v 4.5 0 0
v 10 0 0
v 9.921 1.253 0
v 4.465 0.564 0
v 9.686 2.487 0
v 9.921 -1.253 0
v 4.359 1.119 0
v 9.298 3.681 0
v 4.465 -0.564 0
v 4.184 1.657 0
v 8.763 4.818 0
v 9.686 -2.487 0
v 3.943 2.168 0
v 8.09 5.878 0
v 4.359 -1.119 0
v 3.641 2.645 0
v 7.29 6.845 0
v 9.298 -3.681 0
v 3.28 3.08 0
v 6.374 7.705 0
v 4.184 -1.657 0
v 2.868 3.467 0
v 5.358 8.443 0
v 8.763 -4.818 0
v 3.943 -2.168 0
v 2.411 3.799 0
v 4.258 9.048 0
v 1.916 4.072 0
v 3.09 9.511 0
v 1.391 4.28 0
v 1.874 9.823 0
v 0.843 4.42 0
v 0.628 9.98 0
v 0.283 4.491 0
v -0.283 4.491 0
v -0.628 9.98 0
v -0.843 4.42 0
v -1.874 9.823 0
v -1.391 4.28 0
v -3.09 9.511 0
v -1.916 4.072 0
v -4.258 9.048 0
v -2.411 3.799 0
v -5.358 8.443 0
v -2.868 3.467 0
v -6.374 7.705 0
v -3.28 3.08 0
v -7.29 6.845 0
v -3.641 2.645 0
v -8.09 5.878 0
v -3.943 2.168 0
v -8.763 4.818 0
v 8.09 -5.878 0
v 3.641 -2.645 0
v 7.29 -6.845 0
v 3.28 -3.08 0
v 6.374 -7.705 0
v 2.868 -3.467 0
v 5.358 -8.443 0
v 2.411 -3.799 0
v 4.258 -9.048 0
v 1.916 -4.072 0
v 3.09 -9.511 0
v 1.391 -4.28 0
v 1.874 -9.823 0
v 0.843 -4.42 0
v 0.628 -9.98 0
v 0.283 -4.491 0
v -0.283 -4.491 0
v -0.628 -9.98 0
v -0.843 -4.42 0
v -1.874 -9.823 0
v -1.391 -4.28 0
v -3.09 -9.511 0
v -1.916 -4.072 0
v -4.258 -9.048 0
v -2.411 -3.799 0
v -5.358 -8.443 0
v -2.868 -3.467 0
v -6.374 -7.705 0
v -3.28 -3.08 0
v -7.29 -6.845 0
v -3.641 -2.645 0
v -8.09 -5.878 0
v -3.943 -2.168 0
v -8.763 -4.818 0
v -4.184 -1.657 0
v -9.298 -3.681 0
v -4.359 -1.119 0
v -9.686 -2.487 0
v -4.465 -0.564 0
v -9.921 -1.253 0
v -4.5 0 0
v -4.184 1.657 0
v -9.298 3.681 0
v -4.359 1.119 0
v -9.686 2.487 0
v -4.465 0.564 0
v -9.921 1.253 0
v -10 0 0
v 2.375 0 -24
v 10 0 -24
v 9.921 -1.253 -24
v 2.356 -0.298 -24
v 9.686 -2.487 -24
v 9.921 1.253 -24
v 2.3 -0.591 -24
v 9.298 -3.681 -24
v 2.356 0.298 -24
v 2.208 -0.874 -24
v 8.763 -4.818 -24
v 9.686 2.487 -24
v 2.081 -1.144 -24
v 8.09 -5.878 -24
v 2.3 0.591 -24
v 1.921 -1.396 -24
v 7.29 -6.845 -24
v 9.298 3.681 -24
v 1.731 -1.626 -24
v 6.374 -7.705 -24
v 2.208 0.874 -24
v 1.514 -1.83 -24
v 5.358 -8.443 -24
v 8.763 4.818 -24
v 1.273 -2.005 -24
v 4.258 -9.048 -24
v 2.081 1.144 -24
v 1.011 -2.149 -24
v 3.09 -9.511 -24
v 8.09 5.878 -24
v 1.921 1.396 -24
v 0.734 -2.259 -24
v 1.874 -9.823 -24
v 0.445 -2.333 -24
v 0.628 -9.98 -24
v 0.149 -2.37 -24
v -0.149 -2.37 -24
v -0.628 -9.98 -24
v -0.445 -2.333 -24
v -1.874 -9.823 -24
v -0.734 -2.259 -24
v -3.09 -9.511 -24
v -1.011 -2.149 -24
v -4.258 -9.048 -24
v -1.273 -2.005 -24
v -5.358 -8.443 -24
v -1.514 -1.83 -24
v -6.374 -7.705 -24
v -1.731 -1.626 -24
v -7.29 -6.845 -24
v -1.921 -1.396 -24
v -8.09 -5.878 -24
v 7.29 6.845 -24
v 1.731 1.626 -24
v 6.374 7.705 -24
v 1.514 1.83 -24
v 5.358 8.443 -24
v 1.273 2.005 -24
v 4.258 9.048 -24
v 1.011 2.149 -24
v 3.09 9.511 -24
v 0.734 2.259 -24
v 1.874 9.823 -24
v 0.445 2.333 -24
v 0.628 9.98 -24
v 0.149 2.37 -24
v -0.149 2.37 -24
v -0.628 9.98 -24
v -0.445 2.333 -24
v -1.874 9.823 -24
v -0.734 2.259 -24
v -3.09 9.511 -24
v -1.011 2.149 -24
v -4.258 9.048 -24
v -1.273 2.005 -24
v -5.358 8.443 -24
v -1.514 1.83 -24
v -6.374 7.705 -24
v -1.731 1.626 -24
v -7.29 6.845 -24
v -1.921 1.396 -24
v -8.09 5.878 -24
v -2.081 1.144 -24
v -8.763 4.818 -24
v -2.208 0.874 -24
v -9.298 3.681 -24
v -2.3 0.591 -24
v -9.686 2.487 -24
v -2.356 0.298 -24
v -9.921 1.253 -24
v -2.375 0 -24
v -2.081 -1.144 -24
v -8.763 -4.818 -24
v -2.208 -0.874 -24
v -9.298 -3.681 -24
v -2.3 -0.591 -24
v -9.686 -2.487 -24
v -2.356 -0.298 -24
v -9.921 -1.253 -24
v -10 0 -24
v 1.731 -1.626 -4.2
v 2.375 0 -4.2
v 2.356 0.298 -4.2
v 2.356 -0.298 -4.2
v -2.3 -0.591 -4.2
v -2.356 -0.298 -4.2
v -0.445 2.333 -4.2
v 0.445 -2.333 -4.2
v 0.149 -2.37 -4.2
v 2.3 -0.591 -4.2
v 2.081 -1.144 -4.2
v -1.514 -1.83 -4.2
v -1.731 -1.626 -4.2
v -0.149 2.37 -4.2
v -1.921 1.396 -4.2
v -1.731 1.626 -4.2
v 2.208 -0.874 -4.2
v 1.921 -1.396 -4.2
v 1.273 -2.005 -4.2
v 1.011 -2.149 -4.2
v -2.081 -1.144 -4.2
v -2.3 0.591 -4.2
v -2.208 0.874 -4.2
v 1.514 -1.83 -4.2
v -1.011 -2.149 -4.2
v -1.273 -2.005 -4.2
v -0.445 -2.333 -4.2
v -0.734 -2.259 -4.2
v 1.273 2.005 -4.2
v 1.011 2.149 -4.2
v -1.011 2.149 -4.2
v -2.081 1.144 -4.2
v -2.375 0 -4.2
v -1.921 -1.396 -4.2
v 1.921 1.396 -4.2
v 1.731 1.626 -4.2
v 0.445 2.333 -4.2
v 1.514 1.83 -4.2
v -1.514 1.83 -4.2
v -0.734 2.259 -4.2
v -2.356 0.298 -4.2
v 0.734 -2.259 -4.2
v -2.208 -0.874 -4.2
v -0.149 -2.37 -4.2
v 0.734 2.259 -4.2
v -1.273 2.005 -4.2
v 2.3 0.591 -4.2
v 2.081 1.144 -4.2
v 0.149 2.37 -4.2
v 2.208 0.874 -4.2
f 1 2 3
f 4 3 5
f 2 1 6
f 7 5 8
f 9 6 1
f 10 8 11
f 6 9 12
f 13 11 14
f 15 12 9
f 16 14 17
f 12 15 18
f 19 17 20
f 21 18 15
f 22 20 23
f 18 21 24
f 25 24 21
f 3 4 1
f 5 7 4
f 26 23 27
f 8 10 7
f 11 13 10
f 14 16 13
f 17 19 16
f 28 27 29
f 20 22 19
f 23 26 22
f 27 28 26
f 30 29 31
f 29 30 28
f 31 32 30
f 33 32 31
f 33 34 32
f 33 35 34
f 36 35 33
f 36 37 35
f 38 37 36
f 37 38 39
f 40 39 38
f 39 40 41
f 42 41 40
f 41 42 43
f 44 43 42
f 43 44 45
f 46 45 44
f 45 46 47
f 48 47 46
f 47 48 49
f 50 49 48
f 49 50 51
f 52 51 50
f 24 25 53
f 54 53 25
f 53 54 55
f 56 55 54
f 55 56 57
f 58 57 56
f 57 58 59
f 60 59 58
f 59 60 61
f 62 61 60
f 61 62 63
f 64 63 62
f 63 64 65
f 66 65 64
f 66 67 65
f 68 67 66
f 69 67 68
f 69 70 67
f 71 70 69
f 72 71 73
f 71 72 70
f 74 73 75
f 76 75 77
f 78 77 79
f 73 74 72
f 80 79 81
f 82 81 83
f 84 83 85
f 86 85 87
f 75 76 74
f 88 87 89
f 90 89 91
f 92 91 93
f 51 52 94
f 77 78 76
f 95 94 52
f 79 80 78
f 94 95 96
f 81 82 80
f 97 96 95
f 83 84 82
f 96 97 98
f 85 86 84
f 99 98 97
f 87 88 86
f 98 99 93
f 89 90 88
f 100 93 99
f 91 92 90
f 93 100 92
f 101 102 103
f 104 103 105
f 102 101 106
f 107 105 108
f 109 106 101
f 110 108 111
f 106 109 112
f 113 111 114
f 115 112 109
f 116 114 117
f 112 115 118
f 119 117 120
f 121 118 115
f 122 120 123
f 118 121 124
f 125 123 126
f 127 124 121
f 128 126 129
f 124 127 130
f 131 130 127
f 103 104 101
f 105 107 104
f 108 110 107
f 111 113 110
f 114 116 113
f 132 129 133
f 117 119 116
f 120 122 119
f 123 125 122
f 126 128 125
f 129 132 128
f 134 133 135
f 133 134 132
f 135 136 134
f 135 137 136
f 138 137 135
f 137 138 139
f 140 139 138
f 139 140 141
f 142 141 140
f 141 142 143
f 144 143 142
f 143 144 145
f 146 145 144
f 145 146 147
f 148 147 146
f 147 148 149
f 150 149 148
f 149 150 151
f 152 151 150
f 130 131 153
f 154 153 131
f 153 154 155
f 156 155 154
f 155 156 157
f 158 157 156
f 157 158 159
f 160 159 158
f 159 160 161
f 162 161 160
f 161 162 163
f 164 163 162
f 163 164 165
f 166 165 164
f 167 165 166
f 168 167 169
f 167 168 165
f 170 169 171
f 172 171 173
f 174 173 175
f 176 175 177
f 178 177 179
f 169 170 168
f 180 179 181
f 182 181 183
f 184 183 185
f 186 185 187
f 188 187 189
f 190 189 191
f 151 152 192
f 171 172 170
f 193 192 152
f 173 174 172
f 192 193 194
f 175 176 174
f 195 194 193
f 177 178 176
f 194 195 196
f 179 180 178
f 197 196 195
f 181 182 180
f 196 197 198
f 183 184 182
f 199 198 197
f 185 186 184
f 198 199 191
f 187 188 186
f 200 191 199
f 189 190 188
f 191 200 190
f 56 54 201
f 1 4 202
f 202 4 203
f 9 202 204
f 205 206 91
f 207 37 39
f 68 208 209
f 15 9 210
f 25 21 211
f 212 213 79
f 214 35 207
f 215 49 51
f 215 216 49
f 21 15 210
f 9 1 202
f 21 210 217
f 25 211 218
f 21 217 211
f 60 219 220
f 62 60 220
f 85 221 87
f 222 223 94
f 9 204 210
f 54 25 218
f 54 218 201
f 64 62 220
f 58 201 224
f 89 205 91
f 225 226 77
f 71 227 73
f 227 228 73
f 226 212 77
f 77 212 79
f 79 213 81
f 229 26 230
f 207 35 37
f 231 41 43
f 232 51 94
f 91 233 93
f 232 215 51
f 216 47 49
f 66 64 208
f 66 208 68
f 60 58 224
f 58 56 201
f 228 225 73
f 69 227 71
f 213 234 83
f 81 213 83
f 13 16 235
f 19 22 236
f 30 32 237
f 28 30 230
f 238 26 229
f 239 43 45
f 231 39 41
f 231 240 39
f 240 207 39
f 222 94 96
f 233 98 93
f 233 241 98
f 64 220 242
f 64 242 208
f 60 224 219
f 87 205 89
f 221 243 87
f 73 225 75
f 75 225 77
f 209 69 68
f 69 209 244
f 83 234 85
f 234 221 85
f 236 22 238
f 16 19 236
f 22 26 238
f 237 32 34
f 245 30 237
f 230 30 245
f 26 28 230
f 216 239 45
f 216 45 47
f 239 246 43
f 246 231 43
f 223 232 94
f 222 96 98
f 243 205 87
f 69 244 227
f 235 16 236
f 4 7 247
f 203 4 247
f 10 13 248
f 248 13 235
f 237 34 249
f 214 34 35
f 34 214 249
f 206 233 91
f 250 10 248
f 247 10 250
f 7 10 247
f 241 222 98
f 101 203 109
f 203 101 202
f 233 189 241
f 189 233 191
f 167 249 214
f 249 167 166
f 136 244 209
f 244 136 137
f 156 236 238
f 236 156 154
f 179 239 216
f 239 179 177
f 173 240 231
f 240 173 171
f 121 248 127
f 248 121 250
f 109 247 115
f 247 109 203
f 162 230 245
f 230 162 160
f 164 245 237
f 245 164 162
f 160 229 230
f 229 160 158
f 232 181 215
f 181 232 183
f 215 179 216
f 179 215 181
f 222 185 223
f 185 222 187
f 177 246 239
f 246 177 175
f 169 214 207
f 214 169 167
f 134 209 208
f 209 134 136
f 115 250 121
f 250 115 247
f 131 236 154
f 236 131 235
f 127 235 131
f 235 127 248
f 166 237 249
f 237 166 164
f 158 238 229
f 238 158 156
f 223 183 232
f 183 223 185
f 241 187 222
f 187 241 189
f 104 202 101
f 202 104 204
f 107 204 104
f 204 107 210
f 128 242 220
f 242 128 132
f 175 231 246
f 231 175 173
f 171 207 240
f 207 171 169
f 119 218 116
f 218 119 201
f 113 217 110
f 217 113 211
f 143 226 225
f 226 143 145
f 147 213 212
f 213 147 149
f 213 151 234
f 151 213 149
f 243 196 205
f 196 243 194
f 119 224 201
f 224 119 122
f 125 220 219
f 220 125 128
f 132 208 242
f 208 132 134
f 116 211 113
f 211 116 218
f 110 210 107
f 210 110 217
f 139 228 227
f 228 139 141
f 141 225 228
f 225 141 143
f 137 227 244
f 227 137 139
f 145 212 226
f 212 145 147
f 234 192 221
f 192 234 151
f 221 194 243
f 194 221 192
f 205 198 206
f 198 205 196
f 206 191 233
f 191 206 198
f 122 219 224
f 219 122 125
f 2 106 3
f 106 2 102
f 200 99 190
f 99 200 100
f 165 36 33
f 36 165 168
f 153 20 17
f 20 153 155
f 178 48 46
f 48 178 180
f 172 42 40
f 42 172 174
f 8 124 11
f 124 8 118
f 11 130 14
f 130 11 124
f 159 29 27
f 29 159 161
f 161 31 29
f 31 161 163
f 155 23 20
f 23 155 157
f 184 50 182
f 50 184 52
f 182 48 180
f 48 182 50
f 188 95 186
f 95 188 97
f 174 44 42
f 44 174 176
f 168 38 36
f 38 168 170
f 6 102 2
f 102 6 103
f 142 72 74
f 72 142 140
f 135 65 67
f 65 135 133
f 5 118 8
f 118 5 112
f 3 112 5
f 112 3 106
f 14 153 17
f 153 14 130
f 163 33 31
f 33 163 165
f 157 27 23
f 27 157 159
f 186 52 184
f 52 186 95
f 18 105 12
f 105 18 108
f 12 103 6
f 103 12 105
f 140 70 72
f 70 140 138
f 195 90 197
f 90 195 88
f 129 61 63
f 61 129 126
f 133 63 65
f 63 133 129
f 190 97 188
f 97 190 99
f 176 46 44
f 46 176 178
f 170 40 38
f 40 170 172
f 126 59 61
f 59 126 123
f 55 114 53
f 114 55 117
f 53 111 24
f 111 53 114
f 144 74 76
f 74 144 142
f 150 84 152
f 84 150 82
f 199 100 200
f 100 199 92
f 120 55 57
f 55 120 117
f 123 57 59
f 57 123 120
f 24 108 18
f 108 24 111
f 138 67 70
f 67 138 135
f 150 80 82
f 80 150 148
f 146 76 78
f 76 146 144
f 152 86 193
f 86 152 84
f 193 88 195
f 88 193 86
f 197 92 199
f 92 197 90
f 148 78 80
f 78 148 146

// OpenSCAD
$fn = 50;


difference() {
	union() {
		translate(v = [0, 0, -24.0000000000]) {
			cylinder(h = 24, r = 10.0000000000);
		}
		cylinder(h = 0, r = 13.0000000000);
	}
	union() {
		translate(v = [0, 0, 0]) {
			rotate(a = [0, 0, 0]) {
				difference() {
					union() {
						#translate(v = [0, 0, -24.0000000000]) {
							cylinder(h = 24, r = 2.2500000000);
						}
						#translate(v = [0, 0, -4.2000000000]) {
							cylinder(h = 4.2000000000, r = 10.0000000000, r1 = 2.3750000000, r2 = 4.5000000000);
						}
						#translate(v = [0, 0, -24.0000000000]) {
							cylinder(h = 24, r = 2.3750000000);
						}
						#translate(v = [0, 0, -24.0000000000]) {
							cylinder(h = 24, r = 2.2500000000);
						}
					}
					union();
				}
			}
		}
	}
}
